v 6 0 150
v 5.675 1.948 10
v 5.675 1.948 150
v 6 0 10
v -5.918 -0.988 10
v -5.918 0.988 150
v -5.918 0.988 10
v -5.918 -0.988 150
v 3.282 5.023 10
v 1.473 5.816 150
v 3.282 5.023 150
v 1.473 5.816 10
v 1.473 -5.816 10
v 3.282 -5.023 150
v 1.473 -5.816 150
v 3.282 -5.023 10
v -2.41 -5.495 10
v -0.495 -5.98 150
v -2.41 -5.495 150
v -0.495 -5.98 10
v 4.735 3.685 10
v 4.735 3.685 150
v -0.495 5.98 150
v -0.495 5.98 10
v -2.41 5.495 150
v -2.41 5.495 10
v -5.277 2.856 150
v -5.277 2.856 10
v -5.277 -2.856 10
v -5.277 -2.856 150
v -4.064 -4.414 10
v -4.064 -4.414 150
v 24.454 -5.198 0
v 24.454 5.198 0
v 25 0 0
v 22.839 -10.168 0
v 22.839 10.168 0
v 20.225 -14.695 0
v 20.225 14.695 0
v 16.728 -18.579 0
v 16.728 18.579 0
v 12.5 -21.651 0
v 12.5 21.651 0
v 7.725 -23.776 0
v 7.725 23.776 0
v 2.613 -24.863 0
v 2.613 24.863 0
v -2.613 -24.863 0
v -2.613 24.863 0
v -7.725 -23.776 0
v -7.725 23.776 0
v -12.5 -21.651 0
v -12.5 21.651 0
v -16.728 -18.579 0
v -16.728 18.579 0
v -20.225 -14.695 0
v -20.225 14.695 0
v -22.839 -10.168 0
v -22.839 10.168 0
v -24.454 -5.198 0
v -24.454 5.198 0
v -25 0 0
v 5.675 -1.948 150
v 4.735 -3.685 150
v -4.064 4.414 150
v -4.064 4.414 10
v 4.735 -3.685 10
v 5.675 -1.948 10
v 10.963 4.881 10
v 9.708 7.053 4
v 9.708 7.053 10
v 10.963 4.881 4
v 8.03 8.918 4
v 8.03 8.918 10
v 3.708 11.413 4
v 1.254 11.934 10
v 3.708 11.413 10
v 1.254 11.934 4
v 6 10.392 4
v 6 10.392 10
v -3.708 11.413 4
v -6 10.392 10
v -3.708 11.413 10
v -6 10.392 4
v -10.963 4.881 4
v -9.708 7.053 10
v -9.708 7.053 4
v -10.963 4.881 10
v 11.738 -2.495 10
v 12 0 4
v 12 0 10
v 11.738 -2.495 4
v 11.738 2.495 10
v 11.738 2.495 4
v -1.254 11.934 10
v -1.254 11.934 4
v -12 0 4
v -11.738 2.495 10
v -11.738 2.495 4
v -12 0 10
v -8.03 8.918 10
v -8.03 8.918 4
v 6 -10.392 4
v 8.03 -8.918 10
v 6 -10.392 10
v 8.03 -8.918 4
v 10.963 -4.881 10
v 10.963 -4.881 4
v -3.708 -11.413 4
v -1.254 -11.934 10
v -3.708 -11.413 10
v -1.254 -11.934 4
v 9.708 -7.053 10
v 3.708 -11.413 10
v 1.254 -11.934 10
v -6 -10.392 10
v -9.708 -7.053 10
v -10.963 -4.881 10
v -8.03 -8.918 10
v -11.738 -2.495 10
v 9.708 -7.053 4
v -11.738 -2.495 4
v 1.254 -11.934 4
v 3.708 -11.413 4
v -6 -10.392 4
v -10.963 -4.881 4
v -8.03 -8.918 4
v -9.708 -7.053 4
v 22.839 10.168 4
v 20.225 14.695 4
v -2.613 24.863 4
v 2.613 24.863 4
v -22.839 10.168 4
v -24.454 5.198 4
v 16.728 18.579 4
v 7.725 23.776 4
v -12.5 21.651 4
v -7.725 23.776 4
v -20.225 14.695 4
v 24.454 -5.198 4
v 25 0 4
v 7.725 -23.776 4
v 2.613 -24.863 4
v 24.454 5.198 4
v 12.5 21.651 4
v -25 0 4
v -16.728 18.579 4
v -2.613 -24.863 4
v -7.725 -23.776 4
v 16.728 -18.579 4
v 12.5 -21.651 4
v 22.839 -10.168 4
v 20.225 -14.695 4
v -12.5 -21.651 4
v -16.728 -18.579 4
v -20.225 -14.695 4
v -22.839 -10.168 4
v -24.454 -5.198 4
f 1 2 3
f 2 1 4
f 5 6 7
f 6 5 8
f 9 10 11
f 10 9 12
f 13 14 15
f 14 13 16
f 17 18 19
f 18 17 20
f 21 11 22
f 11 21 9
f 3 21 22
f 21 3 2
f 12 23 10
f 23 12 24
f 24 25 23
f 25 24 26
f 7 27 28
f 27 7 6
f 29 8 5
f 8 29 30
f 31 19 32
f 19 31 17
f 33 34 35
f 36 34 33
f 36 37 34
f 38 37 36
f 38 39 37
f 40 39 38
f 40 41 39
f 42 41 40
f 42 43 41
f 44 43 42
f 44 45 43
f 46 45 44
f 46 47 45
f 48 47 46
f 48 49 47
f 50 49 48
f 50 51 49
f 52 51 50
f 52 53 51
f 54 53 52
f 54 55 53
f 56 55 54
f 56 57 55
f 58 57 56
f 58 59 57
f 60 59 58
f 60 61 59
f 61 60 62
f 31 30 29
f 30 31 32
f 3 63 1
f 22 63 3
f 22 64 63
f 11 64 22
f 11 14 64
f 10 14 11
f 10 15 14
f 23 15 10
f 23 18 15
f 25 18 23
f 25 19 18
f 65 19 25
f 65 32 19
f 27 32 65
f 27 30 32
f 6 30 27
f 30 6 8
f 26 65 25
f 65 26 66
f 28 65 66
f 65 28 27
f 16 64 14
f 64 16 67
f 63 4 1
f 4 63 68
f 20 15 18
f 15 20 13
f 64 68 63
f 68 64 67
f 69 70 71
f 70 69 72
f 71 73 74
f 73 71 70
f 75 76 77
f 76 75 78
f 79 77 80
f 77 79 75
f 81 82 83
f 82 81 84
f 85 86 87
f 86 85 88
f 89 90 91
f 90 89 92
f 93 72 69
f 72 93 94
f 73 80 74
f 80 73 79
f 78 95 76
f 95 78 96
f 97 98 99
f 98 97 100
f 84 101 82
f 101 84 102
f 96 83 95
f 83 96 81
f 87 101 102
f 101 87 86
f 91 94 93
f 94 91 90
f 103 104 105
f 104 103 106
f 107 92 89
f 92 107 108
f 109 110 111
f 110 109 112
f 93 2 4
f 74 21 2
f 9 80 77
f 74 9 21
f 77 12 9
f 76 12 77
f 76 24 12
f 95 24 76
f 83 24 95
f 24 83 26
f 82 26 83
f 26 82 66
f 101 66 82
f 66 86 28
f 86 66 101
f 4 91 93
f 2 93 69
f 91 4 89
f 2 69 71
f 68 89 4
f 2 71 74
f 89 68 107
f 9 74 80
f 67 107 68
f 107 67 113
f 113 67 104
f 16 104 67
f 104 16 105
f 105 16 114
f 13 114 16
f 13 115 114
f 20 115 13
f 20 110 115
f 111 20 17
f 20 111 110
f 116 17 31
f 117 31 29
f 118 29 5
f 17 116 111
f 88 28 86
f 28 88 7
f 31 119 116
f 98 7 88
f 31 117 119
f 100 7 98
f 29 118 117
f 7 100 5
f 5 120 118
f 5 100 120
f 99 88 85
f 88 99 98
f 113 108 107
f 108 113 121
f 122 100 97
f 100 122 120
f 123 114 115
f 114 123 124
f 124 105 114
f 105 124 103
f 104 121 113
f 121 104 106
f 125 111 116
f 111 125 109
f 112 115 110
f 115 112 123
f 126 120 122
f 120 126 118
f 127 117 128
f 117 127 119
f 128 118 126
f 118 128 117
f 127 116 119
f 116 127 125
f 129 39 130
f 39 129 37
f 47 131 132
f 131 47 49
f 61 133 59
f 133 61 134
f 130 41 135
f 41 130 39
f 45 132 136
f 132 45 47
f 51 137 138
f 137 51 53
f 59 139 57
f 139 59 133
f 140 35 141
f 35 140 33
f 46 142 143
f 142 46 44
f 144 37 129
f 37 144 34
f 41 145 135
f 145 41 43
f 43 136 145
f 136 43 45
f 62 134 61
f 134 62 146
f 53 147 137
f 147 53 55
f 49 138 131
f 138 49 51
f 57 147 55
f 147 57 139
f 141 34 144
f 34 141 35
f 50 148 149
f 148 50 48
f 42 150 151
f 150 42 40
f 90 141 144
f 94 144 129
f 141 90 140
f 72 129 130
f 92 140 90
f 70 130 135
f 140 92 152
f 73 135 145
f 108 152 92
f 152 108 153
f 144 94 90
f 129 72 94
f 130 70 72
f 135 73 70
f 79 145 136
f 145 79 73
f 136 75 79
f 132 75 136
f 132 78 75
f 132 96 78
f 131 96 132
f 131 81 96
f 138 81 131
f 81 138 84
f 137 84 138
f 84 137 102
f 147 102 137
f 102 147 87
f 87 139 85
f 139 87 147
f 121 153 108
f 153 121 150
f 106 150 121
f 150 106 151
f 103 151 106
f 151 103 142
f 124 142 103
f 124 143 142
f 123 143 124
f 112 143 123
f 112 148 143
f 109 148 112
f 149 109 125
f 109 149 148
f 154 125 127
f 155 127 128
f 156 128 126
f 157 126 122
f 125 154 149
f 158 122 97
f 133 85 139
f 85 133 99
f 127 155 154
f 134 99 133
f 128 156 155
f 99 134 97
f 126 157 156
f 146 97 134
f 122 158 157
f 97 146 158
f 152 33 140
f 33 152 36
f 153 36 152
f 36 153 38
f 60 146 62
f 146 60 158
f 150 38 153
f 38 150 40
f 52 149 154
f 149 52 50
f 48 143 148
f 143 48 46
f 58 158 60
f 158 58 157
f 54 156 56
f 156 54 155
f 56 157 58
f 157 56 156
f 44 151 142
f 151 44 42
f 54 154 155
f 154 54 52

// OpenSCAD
base();

module base(){
    cylinder(150, 6, 6);
    cylinder(10,12,12);
    cylinder(4, 25,25);
}
